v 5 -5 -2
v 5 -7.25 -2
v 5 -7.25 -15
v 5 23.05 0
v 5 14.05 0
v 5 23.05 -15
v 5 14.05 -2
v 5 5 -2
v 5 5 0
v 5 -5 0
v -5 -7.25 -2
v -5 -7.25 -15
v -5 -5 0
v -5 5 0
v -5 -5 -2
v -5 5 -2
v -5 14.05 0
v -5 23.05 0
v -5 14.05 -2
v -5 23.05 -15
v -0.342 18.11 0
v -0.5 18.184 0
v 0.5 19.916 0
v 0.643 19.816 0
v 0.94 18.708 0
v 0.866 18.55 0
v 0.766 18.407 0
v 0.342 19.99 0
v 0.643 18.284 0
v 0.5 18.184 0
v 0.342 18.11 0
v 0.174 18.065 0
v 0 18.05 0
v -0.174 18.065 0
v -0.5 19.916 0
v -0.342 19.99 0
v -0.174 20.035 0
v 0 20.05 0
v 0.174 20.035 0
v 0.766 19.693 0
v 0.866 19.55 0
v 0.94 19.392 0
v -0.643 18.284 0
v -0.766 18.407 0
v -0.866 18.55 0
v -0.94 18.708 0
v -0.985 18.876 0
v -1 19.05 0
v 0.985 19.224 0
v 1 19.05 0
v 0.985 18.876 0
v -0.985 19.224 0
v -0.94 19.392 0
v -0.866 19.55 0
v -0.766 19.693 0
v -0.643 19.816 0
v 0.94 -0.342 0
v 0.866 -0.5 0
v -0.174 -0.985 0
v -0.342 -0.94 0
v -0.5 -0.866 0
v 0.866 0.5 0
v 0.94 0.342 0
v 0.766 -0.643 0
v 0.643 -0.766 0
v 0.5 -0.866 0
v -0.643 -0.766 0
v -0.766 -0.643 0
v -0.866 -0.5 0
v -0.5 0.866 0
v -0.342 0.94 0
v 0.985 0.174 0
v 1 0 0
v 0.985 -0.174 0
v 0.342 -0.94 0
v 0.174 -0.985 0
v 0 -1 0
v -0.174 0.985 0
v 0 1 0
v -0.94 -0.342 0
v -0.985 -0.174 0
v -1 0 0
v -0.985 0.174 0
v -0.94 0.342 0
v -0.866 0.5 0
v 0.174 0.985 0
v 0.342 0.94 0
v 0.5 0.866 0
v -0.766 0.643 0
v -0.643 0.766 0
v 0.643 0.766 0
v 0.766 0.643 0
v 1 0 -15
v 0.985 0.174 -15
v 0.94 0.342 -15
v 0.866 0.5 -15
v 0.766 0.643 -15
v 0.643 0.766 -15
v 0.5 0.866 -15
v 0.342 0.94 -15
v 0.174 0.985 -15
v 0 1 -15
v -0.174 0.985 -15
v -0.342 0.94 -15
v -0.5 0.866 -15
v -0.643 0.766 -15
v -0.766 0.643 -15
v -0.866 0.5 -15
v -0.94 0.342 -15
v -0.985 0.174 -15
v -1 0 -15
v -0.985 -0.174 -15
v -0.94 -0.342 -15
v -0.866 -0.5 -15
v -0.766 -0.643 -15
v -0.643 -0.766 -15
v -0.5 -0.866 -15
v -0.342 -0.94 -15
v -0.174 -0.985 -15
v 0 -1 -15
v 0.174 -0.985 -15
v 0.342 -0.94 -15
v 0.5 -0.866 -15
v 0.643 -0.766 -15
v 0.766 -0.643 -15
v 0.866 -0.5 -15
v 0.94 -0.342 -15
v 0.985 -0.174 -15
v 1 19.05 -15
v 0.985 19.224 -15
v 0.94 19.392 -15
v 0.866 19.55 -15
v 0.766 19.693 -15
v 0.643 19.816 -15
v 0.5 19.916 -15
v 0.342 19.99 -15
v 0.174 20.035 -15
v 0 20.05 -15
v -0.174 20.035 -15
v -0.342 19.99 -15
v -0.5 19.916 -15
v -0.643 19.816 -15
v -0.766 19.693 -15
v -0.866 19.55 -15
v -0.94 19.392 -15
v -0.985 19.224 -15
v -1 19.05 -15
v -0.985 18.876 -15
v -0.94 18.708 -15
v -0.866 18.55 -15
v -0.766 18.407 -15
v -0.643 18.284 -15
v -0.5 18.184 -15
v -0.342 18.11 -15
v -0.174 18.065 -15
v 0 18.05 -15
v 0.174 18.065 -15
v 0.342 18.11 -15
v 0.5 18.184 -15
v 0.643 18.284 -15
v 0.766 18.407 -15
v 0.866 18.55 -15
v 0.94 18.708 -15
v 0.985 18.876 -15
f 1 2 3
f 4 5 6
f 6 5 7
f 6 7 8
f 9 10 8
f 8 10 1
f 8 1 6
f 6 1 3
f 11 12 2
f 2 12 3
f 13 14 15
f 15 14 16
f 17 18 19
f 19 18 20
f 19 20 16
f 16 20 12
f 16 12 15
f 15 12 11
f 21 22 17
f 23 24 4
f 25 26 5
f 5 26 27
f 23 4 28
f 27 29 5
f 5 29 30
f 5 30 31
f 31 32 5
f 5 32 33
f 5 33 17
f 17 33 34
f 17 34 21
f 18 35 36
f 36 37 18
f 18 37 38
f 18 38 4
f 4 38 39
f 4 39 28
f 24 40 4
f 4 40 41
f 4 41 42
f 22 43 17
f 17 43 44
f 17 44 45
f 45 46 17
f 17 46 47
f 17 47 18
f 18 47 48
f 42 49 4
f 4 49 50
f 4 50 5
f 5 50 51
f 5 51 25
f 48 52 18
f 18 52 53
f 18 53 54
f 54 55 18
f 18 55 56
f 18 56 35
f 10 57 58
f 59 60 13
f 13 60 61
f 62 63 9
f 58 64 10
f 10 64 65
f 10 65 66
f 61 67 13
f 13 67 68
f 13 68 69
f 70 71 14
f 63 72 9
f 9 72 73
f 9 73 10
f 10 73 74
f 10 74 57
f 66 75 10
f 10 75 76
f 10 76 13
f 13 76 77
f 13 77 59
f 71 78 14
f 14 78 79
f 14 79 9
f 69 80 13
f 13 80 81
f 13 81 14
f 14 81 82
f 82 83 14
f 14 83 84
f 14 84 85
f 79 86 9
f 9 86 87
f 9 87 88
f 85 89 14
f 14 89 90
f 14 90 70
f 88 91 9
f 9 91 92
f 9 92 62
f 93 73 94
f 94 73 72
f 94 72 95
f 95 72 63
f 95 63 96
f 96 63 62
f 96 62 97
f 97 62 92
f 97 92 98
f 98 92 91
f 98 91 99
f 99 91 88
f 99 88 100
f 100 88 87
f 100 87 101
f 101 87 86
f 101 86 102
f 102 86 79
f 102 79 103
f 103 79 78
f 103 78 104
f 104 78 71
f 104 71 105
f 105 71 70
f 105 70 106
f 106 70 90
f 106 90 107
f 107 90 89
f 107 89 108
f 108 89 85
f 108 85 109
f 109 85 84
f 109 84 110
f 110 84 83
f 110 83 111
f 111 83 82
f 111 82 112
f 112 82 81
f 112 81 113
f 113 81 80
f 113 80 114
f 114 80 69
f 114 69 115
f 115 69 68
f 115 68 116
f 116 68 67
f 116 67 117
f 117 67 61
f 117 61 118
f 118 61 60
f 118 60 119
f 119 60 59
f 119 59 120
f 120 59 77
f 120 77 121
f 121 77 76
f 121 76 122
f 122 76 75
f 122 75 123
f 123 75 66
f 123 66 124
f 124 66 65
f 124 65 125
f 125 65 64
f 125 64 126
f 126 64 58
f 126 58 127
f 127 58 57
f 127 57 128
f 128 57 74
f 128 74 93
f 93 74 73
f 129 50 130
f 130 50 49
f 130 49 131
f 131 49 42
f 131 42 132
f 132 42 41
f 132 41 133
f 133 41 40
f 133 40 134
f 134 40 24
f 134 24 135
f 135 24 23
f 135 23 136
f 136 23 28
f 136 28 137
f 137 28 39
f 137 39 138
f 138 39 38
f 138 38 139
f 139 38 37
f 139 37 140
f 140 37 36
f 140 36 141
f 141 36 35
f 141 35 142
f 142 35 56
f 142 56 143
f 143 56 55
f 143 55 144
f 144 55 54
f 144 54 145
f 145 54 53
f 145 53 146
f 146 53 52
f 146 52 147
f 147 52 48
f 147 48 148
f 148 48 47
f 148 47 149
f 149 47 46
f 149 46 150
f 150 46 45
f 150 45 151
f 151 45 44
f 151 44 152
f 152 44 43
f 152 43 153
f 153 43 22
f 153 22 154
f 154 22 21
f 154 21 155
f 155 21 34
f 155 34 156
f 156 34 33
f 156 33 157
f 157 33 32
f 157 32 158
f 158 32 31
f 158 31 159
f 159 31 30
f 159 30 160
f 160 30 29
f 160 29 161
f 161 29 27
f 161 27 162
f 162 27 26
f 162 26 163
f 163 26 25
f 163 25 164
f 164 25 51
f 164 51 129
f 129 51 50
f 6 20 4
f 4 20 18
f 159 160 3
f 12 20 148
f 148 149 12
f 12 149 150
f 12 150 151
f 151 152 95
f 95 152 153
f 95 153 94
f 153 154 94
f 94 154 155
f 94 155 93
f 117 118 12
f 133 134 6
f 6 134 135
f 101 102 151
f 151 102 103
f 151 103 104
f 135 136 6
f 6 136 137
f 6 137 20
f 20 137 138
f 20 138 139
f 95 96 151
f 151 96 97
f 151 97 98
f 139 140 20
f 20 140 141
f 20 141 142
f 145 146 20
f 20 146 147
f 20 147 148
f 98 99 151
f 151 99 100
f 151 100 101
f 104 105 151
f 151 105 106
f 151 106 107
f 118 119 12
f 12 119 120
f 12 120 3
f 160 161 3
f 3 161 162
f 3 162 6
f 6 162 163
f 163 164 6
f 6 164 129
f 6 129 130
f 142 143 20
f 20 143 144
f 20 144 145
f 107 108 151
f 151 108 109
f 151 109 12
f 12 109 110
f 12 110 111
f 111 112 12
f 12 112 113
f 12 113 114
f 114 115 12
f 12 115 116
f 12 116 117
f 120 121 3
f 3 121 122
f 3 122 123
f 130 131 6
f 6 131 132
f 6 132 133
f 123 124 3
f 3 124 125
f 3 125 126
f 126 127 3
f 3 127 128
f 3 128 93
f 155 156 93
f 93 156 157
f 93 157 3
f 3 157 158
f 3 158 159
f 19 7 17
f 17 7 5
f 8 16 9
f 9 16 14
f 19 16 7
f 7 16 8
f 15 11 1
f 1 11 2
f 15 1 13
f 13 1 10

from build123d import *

# Parameters (mm, degrees)
SKETCH1_W           = 10
SKETCH1_H           = 27.05
SKETCH1_R           = 1
SKETCH1_H_2         = 3.25
BOSS_EXTRUDE1_DEPTH = 15
SKETCH2_OUTSIDE_W   = 19.052
SKETCH2_OUTSIDE_H   = 39.352
SKETCH2_OUTSIDE_W_2 = 10
SKETCH2_OUTSIDE_H_2 = 10
CUT_EXTRUDE1_DEPTH  = 2


with BuildPart() as part:
    # Sketch1 → Boss-Extrude1 (new body)
    with BuildSketch(Plane.XY):
        with Locations((0, 9.525)):
            Rectangle(SKETCH1_W, SKETCH1_H)
        with Locations((0, 19.05)):
            Circle(SKETCH1_R, mode=Mode.SUBTRACT)
        Circle(SKETCH1_R, mode=Mode.SUBTRACT)
        with Locations((0, -5.625)):
            Rectangle(SKETCH1_W, SKETCH1_H_2)
    extrude(amount=-BOSS_EXTRUDE1_DEPTH)

    # Sketch2 outside → Cut-Extrude1 (cut)
    with BuildSketch(Plane.XY):
        with Locations((0, 7.9)):
            Rectangle(SKETCH2_OUTSIDE_W, SKETCH2_OUTSIDE_H)
        with Locations((0, 19.05)):
            Rectangle(SKETCH2_OUTSIDE_W_2, SKETCH2_OUTSIDE_H_2, mode=Mode.SUBTRACT)
        Rectangle(SKETCH2_OUTSIDE_W_2, SKETCH2_OUTSIDE_H_2, mode=Mode.SUBTRACT)
    extrude(amount=-CUT_EXTRUDE1_DEPTH, mode=Mode.SUBTRACT)


solid = part.part
